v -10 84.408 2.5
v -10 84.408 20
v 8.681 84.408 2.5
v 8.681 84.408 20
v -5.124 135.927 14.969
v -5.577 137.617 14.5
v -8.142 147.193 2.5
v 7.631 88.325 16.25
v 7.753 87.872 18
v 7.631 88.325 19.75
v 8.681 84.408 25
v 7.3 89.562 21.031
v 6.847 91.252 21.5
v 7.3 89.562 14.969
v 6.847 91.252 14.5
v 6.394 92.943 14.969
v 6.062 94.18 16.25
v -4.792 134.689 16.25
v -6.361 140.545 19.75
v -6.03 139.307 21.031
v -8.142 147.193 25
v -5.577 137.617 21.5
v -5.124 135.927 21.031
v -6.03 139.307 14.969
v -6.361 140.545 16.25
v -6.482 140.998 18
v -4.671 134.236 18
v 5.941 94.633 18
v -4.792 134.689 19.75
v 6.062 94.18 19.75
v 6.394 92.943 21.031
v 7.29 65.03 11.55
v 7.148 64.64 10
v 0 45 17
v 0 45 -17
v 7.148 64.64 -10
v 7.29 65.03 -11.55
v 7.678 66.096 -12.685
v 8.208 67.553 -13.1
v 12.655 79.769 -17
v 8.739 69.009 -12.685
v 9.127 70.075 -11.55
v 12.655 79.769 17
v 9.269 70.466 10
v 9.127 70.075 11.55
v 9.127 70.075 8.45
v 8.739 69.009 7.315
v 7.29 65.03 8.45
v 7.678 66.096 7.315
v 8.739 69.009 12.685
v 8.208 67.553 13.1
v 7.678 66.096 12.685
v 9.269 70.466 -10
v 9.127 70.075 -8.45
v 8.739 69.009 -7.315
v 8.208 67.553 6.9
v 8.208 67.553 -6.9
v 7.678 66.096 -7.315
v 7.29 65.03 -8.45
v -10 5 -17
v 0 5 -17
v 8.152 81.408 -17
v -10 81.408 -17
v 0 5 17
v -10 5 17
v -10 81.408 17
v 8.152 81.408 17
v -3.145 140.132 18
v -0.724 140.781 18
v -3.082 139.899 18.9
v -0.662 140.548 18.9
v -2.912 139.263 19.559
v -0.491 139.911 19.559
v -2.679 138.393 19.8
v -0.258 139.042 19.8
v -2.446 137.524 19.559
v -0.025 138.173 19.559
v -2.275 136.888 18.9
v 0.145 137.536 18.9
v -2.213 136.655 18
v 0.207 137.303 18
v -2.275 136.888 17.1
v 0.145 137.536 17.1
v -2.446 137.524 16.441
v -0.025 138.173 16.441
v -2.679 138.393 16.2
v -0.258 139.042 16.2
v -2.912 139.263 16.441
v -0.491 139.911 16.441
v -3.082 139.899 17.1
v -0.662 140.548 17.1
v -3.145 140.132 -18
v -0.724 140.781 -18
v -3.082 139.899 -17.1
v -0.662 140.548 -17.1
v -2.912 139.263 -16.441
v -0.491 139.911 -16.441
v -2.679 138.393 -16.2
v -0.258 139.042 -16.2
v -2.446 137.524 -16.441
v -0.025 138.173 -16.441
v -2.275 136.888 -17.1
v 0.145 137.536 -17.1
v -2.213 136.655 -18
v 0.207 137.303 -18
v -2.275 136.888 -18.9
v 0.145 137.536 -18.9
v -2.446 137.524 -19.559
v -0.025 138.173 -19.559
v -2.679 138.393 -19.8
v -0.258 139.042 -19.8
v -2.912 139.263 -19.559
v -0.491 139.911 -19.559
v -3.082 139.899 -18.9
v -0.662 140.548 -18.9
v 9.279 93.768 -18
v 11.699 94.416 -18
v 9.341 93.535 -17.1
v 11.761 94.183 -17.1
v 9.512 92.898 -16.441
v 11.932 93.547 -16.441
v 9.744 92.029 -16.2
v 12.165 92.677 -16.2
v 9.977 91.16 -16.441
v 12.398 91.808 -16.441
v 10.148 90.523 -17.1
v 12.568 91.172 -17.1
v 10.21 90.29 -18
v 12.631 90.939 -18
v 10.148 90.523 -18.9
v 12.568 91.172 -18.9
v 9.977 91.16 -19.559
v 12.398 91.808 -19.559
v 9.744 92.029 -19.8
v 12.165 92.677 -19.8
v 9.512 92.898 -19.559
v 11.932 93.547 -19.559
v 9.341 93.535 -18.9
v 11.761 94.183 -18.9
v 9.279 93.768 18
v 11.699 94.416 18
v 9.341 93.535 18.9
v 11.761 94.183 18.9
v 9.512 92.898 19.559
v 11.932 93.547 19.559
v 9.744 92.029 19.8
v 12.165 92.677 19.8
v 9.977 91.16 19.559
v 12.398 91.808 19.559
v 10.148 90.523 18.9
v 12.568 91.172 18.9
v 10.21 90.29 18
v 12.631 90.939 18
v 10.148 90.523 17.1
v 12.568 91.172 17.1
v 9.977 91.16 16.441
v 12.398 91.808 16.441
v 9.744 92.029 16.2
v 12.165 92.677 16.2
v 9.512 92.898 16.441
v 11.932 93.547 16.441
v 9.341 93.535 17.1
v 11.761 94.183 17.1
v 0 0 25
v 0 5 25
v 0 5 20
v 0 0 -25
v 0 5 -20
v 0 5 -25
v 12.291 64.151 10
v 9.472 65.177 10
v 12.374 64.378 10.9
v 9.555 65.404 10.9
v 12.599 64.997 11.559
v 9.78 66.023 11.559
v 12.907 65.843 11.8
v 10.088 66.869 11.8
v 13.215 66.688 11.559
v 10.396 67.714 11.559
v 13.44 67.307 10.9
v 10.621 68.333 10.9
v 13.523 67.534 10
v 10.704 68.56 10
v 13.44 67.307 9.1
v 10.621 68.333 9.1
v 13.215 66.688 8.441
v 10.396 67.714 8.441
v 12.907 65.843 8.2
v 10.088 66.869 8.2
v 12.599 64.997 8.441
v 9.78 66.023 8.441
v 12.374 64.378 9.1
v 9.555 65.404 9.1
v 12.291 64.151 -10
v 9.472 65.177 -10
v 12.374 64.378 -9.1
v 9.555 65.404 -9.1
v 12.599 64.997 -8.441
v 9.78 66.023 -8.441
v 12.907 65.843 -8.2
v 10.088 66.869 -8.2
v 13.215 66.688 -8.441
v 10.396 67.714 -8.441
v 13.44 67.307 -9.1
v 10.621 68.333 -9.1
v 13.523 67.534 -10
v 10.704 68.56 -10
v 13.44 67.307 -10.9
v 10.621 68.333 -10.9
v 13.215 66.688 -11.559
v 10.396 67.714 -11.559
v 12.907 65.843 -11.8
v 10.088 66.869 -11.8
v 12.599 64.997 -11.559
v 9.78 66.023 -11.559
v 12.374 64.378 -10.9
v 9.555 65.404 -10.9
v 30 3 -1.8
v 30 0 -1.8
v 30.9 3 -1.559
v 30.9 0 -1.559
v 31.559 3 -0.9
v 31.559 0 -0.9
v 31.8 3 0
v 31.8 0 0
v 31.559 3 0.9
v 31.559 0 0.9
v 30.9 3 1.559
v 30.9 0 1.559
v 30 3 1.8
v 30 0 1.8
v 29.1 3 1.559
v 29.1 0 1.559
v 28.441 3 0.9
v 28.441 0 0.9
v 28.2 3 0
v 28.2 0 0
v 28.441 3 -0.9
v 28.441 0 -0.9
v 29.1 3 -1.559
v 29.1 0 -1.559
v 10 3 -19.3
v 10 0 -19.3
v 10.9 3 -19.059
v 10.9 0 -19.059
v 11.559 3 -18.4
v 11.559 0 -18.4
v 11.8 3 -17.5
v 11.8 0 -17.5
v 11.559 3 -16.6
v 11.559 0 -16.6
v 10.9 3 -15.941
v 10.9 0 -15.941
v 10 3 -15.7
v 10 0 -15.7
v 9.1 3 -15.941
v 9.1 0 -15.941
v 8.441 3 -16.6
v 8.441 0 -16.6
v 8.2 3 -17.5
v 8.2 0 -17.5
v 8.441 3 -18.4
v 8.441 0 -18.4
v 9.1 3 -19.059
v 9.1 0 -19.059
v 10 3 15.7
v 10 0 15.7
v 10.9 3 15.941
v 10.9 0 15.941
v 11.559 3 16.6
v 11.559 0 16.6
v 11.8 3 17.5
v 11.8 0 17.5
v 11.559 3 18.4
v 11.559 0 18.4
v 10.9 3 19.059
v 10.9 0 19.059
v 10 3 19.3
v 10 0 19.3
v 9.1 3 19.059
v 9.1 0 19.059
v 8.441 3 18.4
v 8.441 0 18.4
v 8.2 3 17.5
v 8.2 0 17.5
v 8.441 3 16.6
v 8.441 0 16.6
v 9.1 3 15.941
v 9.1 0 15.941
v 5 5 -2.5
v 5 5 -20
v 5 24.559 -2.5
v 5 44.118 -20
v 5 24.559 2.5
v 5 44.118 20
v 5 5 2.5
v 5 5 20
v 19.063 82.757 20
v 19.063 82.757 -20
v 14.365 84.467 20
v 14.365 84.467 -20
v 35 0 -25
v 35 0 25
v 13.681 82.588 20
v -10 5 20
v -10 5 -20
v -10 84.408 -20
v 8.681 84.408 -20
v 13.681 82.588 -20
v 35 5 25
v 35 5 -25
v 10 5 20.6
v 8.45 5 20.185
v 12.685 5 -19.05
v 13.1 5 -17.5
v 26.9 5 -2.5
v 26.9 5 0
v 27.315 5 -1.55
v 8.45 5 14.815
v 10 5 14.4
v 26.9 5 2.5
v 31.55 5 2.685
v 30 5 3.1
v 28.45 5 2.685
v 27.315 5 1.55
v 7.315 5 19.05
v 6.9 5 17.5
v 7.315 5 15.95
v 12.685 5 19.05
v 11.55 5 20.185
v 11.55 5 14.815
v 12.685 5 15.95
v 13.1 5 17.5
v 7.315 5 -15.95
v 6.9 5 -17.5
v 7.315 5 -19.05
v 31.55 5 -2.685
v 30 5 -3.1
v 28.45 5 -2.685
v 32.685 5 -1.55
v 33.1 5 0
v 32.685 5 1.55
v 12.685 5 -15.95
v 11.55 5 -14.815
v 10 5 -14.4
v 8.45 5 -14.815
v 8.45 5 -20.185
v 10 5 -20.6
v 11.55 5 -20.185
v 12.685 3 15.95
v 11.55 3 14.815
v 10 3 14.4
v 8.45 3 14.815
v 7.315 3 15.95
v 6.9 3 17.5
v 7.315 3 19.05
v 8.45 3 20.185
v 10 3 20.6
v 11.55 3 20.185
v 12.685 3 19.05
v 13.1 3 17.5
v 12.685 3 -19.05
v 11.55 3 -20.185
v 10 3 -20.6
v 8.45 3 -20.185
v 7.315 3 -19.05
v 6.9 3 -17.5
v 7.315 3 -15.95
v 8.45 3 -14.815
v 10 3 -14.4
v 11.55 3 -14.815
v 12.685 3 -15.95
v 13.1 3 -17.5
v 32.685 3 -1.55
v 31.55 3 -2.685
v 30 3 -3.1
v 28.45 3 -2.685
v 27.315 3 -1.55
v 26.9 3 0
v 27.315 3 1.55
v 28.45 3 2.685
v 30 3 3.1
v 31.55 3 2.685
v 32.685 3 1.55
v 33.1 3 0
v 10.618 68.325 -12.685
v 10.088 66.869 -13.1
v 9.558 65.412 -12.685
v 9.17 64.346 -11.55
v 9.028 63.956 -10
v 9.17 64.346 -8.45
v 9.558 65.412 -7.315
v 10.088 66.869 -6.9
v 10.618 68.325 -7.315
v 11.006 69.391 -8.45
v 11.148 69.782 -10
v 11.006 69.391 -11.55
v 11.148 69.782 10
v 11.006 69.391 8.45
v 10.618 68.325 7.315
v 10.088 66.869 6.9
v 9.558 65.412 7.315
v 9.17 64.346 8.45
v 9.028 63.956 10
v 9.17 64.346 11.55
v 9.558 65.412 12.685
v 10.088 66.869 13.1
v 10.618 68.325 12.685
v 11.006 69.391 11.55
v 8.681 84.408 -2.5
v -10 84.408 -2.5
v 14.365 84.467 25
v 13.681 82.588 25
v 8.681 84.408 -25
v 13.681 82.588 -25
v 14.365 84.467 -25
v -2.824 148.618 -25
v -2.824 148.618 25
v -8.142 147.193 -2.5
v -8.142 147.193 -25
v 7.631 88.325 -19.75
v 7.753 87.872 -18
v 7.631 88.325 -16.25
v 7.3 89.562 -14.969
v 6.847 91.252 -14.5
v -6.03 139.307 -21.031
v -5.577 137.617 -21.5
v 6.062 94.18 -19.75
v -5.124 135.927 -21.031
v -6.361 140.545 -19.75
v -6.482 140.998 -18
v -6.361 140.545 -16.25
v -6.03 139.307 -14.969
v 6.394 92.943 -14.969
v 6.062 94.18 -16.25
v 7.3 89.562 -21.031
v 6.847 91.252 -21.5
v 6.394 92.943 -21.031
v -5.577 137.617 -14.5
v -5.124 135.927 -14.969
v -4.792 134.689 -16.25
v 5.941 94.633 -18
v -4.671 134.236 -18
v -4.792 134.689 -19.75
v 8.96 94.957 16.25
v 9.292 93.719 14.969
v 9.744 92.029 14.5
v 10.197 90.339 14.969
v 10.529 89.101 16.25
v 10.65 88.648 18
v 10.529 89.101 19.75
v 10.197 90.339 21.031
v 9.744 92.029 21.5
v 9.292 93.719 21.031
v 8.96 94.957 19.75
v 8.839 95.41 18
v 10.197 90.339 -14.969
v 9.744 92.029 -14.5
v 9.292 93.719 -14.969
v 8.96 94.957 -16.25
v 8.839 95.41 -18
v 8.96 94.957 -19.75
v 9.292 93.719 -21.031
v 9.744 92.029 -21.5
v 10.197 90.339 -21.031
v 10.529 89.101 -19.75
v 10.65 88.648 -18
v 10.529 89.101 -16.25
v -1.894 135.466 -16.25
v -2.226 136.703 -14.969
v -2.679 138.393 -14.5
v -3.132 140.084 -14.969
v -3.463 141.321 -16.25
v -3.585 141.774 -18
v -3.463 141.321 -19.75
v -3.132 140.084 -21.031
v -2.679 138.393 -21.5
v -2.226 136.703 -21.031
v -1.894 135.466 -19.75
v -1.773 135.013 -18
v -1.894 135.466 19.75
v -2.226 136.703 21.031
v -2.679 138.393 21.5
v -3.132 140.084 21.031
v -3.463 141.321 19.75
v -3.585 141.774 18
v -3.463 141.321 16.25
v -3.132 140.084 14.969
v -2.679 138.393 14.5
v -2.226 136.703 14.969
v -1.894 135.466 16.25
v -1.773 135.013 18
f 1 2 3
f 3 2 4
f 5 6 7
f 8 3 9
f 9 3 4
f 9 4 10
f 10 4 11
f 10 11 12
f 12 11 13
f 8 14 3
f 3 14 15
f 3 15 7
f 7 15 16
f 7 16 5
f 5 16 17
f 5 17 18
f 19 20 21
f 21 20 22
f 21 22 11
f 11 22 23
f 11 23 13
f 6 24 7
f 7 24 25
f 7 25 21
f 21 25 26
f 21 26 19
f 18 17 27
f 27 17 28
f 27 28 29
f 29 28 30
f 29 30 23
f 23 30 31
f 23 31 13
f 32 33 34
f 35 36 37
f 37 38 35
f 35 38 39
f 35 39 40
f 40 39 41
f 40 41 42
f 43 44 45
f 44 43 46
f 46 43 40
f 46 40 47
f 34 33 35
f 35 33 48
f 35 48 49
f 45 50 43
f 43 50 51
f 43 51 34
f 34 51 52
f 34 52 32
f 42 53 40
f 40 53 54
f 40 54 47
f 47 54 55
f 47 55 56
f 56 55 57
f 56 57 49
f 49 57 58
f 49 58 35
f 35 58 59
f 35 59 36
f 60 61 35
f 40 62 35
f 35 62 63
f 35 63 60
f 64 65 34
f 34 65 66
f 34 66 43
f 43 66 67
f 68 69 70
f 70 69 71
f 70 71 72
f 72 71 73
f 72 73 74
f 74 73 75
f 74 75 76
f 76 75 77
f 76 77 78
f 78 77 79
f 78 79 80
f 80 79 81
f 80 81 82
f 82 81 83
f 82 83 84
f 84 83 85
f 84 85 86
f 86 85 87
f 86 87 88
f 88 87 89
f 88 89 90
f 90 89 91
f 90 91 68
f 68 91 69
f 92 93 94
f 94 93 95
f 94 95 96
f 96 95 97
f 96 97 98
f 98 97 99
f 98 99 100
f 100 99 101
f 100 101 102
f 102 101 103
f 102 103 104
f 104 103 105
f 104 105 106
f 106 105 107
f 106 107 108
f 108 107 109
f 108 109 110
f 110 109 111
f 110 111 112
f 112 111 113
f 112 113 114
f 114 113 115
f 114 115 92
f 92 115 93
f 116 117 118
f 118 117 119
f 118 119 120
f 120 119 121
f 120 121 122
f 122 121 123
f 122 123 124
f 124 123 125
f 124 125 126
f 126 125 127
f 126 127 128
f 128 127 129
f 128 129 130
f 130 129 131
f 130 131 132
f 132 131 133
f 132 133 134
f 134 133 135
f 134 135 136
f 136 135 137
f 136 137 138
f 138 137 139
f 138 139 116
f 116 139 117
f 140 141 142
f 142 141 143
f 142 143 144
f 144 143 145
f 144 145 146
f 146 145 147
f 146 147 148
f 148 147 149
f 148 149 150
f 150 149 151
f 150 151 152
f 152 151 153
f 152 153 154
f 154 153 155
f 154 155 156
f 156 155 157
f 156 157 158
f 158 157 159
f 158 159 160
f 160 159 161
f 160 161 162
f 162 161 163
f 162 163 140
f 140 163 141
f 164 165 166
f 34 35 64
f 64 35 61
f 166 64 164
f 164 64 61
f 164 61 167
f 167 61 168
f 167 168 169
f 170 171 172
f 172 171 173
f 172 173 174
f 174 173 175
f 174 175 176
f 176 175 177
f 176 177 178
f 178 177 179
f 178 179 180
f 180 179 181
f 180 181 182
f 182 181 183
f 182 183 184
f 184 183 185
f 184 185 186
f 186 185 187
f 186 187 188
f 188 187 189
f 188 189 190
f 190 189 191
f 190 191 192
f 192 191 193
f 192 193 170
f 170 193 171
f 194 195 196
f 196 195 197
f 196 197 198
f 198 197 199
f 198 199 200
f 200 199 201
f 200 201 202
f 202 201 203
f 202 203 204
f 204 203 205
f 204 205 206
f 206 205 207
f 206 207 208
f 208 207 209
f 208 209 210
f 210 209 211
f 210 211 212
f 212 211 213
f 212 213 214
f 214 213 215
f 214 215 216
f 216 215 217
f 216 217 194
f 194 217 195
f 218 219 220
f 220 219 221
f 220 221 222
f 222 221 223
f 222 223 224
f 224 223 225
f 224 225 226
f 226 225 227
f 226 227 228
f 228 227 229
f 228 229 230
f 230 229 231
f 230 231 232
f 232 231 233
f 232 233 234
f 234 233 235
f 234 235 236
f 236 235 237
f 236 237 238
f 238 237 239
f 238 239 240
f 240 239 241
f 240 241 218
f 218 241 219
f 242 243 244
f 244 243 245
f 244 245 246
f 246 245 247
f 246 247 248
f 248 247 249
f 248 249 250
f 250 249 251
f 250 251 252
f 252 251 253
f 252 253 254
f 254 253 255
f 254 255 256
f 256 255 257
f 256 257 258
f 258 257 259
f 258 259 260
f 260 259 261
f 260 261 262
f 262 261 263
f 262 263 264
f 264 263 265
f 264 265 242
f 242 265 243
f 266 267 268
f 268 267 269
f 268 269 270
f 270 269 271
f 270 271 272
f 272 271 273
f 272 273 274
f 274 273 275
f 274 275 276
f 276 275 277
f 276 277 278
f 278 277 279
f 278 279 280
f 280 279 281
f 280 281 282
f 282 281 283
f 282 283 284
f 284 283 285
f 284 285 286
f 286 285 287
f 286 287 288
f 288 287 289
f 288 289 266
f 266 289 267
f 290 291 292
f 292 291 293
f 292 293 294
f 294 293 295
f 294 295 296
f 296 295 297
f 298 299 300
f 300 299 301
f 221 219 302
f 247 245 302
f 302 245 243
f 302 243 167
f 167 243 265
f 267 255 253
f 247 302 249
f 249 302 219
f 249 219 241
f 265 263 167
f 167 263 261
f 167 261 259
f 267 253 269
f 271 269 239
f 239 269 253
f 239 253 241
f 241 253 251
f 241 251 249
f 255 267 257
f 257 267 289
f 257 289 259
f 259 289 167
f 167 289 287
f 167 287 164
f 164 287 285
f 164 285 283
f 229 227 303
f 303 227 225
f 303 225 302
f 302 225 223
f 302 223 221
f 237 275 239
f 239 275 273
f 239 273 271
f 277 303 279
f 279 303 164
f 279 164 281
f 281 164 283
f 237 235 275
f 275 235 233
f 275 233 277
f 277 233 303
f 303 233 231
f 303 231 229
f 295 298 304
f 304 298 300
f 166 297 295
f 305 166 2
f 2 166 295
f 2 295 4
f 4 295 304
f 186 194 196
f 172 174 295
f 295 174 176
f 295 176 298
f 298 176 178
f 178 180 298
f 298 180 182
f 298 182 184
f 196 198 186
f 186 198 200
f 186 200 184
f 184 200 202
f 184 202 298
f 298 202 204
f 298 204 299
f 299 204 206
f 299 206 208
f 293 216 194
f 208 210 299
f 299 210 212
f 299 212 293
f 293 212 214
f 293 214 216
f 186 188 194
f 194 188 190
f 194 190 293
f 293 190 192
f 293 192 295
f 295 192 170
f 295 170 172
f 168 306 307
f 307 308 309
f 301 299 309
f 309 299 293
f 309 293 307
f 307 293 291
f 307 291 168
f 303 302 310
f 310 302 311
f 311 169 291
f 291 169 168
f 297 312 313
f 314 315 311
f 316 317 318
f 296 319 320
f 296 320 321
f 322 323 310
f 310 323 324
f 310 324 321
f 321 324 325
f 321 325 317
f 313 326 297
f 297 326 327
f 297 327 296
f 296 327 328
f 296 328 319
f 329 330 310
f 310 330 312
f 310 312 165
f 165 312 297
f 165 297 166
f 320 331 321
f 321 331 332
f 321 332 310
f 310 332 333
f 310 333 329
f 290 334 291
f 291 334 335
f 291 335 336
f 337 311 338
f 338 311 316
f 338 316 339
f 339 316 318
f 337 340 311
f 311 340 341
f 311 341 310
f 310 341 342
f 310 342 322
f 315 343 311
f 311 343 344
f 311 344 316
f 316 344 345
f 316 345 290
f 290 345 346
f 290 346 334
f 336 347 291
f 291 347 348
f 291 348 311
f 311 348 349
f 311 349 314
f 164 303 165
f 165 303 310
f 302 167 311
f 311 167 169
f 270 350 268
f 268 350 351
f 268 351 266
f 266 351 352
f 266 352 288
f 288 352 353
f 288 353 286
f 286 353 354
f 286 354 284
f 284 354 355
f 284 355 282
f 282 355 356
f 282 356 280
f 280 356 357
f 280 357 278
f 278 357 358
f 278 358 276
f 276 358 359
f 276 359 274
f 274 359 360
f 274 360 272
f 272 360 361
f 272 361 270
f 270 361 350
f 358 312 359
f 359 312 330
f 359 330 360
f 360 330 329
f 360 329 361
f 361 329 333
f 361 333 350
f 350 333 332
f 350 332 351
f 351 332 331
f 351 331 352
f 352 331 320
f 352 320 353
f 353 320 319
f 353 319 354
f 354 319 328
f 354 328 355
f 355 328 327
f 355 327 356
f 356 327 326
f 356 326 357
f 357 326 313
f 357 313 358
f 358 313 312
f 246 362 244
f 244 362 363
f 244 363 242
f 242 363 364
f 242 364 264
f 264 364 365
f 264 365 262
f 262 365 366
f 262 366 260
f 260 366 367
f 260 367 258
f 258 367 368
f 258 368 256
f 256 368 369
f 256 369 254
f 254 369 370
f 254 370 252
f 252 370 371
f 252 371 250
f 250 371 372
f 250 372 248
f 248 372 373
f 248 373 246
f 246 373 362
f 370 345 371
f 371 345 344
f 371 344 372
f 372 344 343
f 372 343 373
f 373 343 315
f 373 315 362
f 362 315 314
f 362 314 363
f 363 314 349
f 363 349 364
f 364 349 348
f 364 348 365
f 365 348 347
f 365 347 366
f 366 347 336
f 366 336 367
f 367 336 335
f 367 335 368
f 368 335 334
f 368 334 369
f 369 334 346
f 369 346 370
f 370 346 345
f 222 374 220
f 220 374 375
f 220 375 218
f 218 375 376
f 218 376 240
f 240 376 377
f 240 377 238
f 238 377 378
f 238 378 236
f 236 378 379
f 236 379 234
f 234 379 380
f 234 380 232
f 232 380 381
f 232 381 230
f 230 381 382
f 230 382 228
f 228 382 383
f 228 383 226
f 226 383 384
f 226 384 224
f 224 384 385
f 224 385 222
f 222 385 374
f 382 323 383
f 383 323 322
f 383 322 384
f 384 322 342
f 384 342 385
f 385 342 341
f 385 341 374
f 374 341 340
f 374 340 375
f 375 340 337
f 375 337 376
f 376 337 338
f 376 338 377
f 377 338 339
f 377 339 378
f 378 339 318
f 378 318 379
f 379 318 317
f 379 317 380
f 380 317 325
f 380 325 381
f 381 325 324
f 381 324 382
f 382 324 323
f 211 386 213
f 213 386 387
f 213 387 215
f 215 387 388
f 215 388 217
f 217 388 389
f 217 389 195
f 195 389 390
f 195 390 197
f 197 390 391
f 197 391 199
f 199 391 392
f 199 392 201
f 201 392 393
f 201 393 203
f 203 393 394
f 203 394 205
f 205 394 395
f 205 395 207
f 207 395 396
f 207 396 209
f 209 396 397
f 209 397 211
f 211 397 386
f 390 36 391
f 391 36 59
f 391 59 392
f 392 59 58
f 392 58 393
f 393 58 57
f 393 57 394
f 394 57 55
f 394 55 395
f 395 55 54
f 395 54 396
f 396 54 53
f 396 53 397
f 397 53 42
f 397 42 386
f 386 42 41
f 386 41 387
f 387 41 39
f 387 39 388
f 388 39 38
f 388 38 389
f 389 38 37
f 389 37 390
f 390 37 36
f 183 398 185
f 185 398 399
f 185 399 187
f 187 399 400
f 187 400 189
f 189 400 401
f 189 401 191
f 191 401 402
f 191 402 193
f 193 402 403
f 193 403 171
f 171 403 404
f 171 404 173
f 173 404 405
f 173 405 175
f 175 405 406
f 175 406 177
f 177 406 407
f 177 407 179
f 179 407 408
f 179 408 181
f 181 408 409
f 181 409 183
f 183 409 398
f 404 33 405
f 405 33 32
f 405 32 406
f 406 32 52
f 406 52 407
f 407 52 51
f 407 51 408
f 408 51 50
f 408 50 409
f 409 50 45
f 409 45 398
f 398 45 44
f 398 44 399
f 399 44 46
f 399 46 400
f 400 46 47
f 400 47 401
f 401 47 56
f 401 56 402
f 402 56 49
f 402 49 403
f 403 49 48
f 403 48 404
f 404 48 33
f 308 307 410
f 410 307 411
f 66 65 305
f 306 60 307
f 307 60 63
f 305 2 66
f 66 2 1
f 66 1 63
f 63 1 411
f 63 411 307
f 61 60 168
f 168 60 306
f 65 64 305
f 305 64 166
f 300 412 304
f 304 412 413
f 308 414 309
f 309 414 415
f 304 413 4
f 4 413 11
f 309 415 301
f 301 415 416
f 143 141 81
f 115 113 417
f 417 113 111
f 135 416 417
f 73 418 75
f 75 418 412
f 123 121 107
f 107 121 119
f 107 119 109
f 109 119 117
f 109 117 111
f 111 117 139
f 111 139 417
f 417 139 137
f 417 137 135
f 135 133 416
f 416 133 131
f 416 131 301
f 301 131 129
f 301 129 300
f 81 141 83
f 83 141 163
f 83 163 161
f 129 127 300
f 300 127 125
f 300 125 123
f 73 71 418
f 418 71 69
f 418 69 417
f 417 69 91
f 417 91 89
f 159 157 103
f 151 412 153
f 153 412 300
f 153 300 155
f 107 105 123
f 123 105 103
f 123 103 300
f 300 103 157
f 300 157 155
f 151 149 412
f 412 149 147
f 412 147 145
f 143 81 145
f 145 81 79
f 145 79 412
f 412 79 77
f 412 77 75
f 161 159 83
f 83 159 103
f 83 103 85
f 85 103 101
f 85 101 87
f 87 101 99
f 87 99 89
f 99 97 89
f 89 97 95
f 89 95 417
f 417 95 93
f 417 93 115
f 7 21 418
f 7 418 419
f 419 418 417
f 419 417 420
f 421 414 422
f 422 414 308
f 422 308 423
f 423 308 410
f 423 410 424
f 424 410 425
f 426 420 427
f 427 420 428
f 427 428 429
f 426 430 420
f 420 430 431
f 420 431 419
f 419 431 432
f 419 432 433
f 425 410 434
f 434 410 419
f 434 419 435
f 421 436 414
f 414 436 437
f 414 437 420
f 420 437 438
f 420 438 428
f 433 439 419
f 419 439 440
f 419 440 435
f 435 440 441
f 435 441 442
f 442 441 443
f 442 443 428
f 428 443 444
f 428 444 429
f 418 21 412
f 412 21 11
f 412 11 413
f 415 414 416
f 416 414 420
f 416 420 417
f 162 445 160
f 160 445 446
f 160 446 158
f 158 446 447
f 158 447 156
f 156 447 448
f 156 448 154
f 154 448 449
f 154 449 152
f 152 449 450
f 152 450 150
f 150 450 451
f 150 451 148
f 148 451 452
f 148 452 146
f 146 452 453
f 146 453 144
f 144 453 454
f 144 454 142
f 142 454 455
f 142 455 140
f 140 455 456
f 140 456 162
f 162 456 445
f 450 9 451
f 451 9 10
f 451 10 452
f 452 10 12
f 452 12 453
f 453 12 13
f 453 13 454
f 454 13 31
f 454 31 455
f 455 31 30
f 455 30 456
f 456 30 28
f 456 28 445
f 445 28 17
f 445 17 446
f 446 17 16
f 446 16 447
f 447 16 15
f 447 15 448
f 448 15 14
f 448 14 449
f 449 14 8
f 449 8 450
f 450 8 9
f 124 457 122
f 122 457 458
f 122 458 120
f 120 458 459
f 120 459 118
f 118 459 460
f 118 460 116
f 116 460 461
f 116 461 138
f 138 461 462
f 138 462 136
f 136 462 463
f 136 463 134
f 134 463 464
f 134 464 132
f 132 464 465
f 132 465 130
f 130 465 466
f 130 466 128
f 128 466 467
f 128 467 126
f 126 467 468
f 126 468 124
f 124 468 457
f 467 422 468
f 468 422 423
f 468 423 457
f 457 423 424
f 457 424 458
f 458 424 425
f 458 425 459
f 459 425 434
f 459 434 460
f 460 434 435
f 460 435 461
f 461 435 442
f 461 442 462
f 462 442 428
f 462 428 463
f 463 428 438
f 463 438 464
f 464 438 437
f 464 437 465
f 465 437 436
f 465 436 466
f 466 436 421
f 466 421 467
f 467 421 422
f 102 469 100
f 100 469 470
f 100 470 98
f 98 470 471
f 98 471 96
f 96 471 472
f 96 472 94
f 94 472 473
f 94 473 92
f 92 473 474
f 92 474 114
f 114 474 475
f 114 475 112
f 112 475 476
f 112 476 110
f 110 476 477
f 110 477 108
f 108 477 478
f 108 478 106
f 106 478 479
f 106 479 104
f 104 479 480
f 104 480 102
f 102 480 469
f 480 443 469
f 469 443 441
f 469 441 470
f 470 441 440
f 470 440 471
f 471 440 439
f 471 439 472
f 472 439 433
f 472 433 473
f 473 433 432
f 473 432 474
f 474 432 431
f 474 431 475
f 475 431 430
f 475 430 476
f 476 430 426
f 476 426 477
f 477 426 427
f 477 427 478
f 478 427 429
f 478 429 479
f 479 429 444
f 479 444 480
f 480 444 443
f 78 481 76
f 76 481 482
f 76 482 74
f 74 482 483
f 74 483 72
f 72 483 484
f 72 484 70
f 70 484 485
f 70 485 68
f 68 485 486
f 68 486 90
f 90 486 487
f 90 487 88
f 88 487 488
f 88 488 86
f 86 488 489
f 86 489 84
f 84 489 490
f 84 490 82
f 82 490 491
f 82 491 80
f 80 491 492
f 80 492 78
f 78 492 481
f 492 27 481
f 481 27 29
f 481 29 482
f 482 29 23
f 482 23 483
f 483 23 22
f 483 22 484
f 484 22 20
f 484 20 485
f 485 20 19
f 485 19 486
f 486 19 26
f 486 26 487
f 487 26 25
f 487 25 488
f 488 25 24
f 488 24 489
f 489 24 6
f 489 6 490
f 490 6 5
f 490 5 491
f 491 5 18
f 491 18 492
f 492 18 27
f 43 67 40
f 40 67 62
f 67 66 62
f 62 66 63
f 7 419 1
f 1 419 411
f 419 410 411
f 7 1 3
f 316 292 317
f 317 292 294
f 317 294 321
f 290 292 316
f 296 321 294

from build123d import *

# Parameters (mm, degrees)
SKETCH_2_W           = 5
SKETCH_2_H           = 40
CUT_EXTRUDE_1_REACH  = 90.301
SKETCH_3_R           = 1.8
SKETCH_6_W           = 30
SKETCH_6_H           = 40
EXTRUDE_1_DEPTH      = 5
CUT_EXTRUDE_2_REACH  = 95.593
SKETCH_8_R           = 1.8
SKETCH_9_W           = 35
SKETCH_9_H           = 5
EXTRUDE_2_DEPTH      = 5
SKETCH_10_R          = 3.1
CUT_EXTRUDE_3_DEPTH  = 2
SKETCH_11_R          = 3.1
CUT_EXTRUDE_4_DEPTH  = 2
EXTRUDE_4_DEPTH      = 3
EXTRUDE_5_DEPTH      = 25
EXTRUDE_5_DEPTH_BACK = 25
CUT_EXTRUDE_5_REACH  = 150.427
SKETCH_17_R          = 1.8
SKETCH_18_R          = 3.5
CUT_EXTRUDE_6_DEPTH  = 3
EXTRUDE_6_DEPTH      = 34
RIB_4_REACH          = 156.717
SKETCH_20_WALL_W     = 374.245878862
SKETCH_20_WALL_H     = 5
RIB_5_REACH          = 156.717
SKETCH_21_WALL_W     = 340.795986182
SKETCH_21_WALL_H     = 5


with BuildPart() as part:
    # 扫描1: sweep along a path in 草图1
    with BuildLine(Plane.XY) as sweep_1_path:
        Line((0, 0), (0, 45))
        Line((0, 45), (14.36484602, 84.467090073))
    # 草图2 → 扫描1 (sweep)
    with BuildSketch(Plane(origin=(0, 0, 0), x_dir=(1, 0, 0), z_dir=(0, 1, 0))):
        with Locations((2.5, 0)):
            Rectangle(SKETCH_2_W, SKETCH_2_H)
    sweep(path=sweep_1_path.line, transition=Transition.RIGHT)

    # 草图3 → 切除-拉伸1 (cut, up to next)
    with BuildSketch(Plane(origin=(-14.462721218, 5.26400003, 0), x_dir=(0, 0, 1), z_dir=(-0.9396926207859081, 0.3420201433256695, 0)), mode=Mode.PRIVATE) as cut_extrude_1_sk1:
        with Locations(Location((-10, 66.286167935, 0), (0, 0, 270))):
            Circle(SKETCH_3_R)
    cut_extrude_1_tool1 = extrude(cut_extrude_1_sk1.sketch, amount=-CUT_EXTRUDE_1_REACH, mode=Mode.PRIVATE) & part.part
    # 草图3 → 切除-拉伸1 (cut, up to next)
    with BuildSketch(Plane(origin=(-14.462721218, 5.26400003, 0), x_dir=(0, 0, 1), z_dir=(-0.9396926207859081, 0.3420201433256695, 0)), mode=Mode.PRIVATE) as cut_extrude_1_sk2:
        with Locations(Location((10, 66.286167935, 0), (0, 0, 270))):
            Circle(SKETCH_3_R)
    cut_extrude_1_tool2 = extrude(cut_extrude_1_sk2.sketch, amount=-CUT_EXTRUDE_1_REACH, mode=Mode.PRIVATE) & part.part
    add(cut_extrude_1_tool1.solids().sort_by_distance((8.208483, 67.552623, -10))[0], mode=Mode.SUBTRACT)
    add(cut_extrude_1_tool2.solids().sort_by_distance((8.208483, 67.552623, 10))[0], mode=Mode.SUBTRACT)

    # 草图6 → 凸台-拉伸1 (add)
    with BuildSketch(Plane.XZ):
        with Locations((20, 0)):
            Rectangle(SKETCH_6_W, SKETCH_6_H)
    extrude(amount=-EXTRUDE_1_DEPTH)

    # 草图8 → 切除-拉伸2 (cut, up to next)
    with BuildSketch(Plane.XZ, mode=Mode.PRIVATE) as cut_extrude_2_sk1:
        with Locations(Location((10, 17.5, 0), (0, 0, 270))):
            Circle(SKETCH_8_R)
    cut_extrude_2_tool1 = extrude(cut_extrude_2_sk1.sketch, amount=-CUT_EXTRUDE_2_REACH, mode=Mode.PRIVATE) & part.part
    # 草图8 → 切除-拉伸2 (cut, up to next)
    with BuildSketch(Plane.XZ, mode=Mode.PRIVATE) as cut_extrude_2_sk2:
        with Locations(Location((10, -17.5, 0), (0, 0, 270))):
            Circle(SKETCH_8_R)
    cut_extrude_2_tool2 = extrude(cut_extrude_2_sk2.sketch, amount=-CUT_EXTRUDE_2_REACH, mode=Mode.PRIVATE) & part.part
    # 草图8 → 切除-拉伸2 (cut, up to next)
    with BuildSketch(Plane.XZ, mode=Mode.PRIVATE) as cut_extrude_2_sk3:
        with Locations(Location((30, 0, 0), (0, 0, 270))):
            Circle(SKETCH_8_R)
    cut_extrude_2_tool3 = extrude(cut_extrude_2_sk3.sketch, amount=-CUT_EXTRUDE_2_REACH, mode=Mode.PRIVATE) & part.part
    add(cut_extrude_2_tool1.solids().sort_by_distance((10, 0, 17.5))[0], mode=Mode.SUBTRACT)
    add(cut_extrude_2_tool2.solids().sort_by_distance((10, 0, -17.5))[0], mode=Mode.SUBTRACT)
    add(cut_extrude_2_tool3.solids().sort_by_distance((30, 0, 0))[0], mode=Mode.SUBTRACT)

    # 草图9 → 凸台-拉伸2 (add)
    with BuildSketch(Plane.XZ):
        with Locations((17.5, 22.5)):
            Rectangle(SKETCH_9_W, SKETCH_9_H)
        with Locations((17.5, -22.5)):
            Rectangle(SKETCH_9_W, SKETCH_9_H)
    extrude(amount=-EXTRUDE_2_DEPTH)

    # 草图10 → 切除-拉伸3 (cut)
    with BuildSketch(Plane(origin=(0, 5, 0), x_dir=(1, 0, 0), z_dir=(0, 1, 0))):
        with Locations(Location((10, -17.5, 0), (0, 0, 270))):
            Circle(SKETCH_10_R)
        with Locations(Location((10, 17.5, 0), (0, 0, 270))):
            Circle(SKETCH_10_R)
        with Locations(Location((30, 0, 0), (0, 0, 270))):
            Circle(SKETCH_10_R)
    extrude(amount=-CUT_EXTRUDE_3_DEPTH, mode=Mode.SUBTRACT)

    # 草图11 → 切除-拉伸4 (cut)
    with BuildSketch(Plane(origin=(-14.462721218, 5.26400003, 0), x_dir=(0, 0, 1), z_dir=(-0.9396926207859081, 0.3420201433256695, 0))):
        with Locations(Location((-10, 66.286167935, 0), (0, 0, 270))):
            Circle(SKETCH_11_R)
        with Locations(Location((10, 66.286167935, 0), (0, 0, 270))):
            Circle(SKETCH_11_R)
    extrude(amount=-CUT_EXTRUDE_4_DEPTH, mode=Mode.SUBTRACT)

    # 草图15 → 凸台-拉伸4 (add)
    with BuildSketch(Plane(origin=(0, 0, -20), x_dir=(-1, 0, 0), z_dir=(0, 0, -1))):
        Polygon((-8.680805733, 84.407556003), (-13.680805733, 82.587704831), (0, 45), (0, 5), (10, 5), (10, 84.407556003), align=None)
    extrude_4 = extrude(amount=-EXTRUDE_4_DEPTH)

    # 镜向2: 凸台-拉伸4 across plane
    add(extrude_4.mirror(Plane(origin=(0, 0, 0), x_dir=(1, 0, 0), z_dir=(0, 0, -1))))

    # 草图16 → 凸台-拉伸5 (add, two sides: drawn at the far end of the back side and taken through both)
    with BuildSketch(Plane(origin=(0, 0, 0), x_dir=(-1, 0, 0), z_dir=(0, 0, -1)).offset(-EXTRUDE_5_DEPTH_BACK)):
        Polygon((-14.36484602, 84.467090073), (2.824266896, 148.61773281), (8.142432199, 147.192734712), (-8.680805733, 84.407556003), (-13.680805733, 82.587704831), align=None)
    extrude(amount=EXTRUDE_5_DEPTH + EXTRUDE_5_DEPTH_BACK)

    # 草图17 → 切除-拉伸5 (cut, up to next)
    with BuildSketch(Plane(origin=(34.519356315, 9.249433648, 0), x_dir=(0, 0, -1), z_dir=(0.9659258262890672, 0.2588190451025248, 0)), mode=Mode.PRIVATE) as cut_extrude_5_sk1:
        with Locations(Location((-18, 134.371048043, 0), (0, 0, 90))):
            Circle(SKETCH_17_R)
    cut_extrude_5_tool1 = extrude(cut_extrude_5_sk1.sketch, amount=-CUT_EXTRUDE_5_REACH, mode=Mode.PRIVATE) & part.part
    # 草图17 → 切除-拉伸5 (cut, up to next)
    with BuildSketch(Plane(origin=(34.519356315, 9.249433648, 0), x_dir=(0, 0, -1), z_dir=(0.9659258262890672, 0.2588190451025248, 0)), mode=Mode.PRIVATE) as cut_extrude_5_sk2:
        with Locations(Location((18, 134.371048043, 0), (0, 0, 90))):
            Circle(SKETCH_17_R)
    cut_extrude_5_tool2 = extrude(cut_extrude_5_sk2.sketch, amount=-CUT_EXTRUDE_5_REACH, mode=Mode.PRIVATE) & part.part
    # 草图17 → 切除-拉伸5 (cut, up to next)
    with BuildSketch(Plane(origin=(34.519356315, 9.249433648, 0), x_dir=(0, 0, -1), z_dir=(0.9659258262890672, 0.2588190451025248, 0)), mode=Mode.PRIVATE) as cut_extrude_5_sk3:
        with Locations(Location((18, 86.371048043, 0), (0, 0, 90))):
            Circle(SKETCH_17_R)
    cut_extrude_5_tool3 = extrude(cut_extrude_5_sk3.sketch, amount=-CUT_EXTRUDE_5_REACH, mode=Mode.PRIVATE) & part.part
    # 草图17 → 切除-拉伸5 (cut, up to next)
    with BuildSketch(Plane(origin=(34.519356315, 9.249433648, 0), x_dir=(0, 0, -1), z_dir=(0.9659258262890672, 0.2588190451025248, 0)), mode=Mode.PRIVATE) as cut_extrude_5_sk4:
        with Locations(Location((-18, 86.371048043, 0), (0, 0, 90))):
            Circle(SKETCH_17_R)
    cut_extrude_5_tool4 = extrude(cut_extrude_5_sk4.sketch, amount=-CUT_EXTRUDE_5_REACH, mode=Mode.PRIVATE) & part.part
    add(cut_extrude_5_tool1.solids().sort_by_distance((-0.25843, 139.041899, 18))[0], mode=Mode.SUBTRACT)
    add(cut_extrude_5_tool2.solids().sort_by_distance((-0.25843, 139.041899, -18))[0], mode=Mode.SUBTRACT)
    add(cut_extrude_5_tool3.solids().sort_by_distance((12.164884, 92.67746, -18))[0], mode=Mode.SUBTRACT)
    add(cut_extrude_5_tool4.solids().sort_by_distance((12.164884, 92.67746, 18))[0], mode=Mode.SUBTRACT)

    # 草图18 → 切除-拉伸6 (cut)
    with BuildSketch(Plane(origin=(29.201191012, 7.82443555, 0), x_dir=(0, 0, 1), z_dir=(-0.9659258262890674, -0.2588190451025246, 0))):
        with Locations(Location((-18, 134.371048043, 0), (0, 0, 270))):
            Circle(SKETCH_18_R)
        with Locations(Location((18, 134.371048043, 0), (0, 0, 270))):
            Circle(SKETCH_18_R)
        with Locations(Location((18, 86.371048043, 0), (0, 0, 270))):
            Circle(SKETCH_18_R)
        with Locations(Location((-18, 86.371048043, 0), (0, 0, 270))):
            Circle(SKETCH_18_R)
    extrude(amount=-CUT_EXTRUDE_6_DEPTH, mode=Mode.SUBTRACT)

    # 草图19 → 凸台-拉伸6 (add)
    with BuildSketch(Plane.XY.offset(-17)):
        Polygon((12.654745303, 79.768626969), (8.151824791, 81.407556003), (-10, 81.407556003), (-10, 84.407556003), (8.680805733, 84.407556003), (13.680805733, 82.587704831), align=None)
    extrude(amount=EXTRUDE_6_DEPTH)

    # 草图20 wall → 筋4 (add, up to next)
    with BuildSketch(Plane(origin=(-9.071216099, 115.800145357, 0), x_dir=(0.029573147262, 0.999562618829, 0), z_dir=(0.999562618829, -0.029573147262, 0)), mode=Mode.PRIVATE) as rib_4_sk1:
        Rectangle(SKETCH_20_WALL_W, SKETCH_20_WALL_H)
    rib_4_tool1 = extrude(rib_4_sk1.sketch, amount=RIB_4_REACH, mode=Mode.PRIVATE) - part.part
    add(rib_4_tool1.solids().sort_by_distance((-9.071216099, 115.800145357, 0))[0])

    # 草图21 wall → 筋5 (add, up to next)
    with BuildSketch(Plane(origin=(15.95, 14.779591274, 0), x_dir=(0.745842716131, -0.666122093009, 0), z_dir=(-0.666122093009, -0.745842716131, 0)), mode=Mode.PRIVATE) as rib_5_sk1:
        Rectangle(SKETCH_21_WALL_W, SKETCH_21_WALL_H)
    rib_5_tool1 = extrude(rib_5_sk1.sketch, amount=RIB_5_REACH, mode=Mode.PRIVATE) - part.part
    add(rib_5_tool1.solids().sort_by_distance((15.95, 14.779591274, 0))[0])


solid = part.part
